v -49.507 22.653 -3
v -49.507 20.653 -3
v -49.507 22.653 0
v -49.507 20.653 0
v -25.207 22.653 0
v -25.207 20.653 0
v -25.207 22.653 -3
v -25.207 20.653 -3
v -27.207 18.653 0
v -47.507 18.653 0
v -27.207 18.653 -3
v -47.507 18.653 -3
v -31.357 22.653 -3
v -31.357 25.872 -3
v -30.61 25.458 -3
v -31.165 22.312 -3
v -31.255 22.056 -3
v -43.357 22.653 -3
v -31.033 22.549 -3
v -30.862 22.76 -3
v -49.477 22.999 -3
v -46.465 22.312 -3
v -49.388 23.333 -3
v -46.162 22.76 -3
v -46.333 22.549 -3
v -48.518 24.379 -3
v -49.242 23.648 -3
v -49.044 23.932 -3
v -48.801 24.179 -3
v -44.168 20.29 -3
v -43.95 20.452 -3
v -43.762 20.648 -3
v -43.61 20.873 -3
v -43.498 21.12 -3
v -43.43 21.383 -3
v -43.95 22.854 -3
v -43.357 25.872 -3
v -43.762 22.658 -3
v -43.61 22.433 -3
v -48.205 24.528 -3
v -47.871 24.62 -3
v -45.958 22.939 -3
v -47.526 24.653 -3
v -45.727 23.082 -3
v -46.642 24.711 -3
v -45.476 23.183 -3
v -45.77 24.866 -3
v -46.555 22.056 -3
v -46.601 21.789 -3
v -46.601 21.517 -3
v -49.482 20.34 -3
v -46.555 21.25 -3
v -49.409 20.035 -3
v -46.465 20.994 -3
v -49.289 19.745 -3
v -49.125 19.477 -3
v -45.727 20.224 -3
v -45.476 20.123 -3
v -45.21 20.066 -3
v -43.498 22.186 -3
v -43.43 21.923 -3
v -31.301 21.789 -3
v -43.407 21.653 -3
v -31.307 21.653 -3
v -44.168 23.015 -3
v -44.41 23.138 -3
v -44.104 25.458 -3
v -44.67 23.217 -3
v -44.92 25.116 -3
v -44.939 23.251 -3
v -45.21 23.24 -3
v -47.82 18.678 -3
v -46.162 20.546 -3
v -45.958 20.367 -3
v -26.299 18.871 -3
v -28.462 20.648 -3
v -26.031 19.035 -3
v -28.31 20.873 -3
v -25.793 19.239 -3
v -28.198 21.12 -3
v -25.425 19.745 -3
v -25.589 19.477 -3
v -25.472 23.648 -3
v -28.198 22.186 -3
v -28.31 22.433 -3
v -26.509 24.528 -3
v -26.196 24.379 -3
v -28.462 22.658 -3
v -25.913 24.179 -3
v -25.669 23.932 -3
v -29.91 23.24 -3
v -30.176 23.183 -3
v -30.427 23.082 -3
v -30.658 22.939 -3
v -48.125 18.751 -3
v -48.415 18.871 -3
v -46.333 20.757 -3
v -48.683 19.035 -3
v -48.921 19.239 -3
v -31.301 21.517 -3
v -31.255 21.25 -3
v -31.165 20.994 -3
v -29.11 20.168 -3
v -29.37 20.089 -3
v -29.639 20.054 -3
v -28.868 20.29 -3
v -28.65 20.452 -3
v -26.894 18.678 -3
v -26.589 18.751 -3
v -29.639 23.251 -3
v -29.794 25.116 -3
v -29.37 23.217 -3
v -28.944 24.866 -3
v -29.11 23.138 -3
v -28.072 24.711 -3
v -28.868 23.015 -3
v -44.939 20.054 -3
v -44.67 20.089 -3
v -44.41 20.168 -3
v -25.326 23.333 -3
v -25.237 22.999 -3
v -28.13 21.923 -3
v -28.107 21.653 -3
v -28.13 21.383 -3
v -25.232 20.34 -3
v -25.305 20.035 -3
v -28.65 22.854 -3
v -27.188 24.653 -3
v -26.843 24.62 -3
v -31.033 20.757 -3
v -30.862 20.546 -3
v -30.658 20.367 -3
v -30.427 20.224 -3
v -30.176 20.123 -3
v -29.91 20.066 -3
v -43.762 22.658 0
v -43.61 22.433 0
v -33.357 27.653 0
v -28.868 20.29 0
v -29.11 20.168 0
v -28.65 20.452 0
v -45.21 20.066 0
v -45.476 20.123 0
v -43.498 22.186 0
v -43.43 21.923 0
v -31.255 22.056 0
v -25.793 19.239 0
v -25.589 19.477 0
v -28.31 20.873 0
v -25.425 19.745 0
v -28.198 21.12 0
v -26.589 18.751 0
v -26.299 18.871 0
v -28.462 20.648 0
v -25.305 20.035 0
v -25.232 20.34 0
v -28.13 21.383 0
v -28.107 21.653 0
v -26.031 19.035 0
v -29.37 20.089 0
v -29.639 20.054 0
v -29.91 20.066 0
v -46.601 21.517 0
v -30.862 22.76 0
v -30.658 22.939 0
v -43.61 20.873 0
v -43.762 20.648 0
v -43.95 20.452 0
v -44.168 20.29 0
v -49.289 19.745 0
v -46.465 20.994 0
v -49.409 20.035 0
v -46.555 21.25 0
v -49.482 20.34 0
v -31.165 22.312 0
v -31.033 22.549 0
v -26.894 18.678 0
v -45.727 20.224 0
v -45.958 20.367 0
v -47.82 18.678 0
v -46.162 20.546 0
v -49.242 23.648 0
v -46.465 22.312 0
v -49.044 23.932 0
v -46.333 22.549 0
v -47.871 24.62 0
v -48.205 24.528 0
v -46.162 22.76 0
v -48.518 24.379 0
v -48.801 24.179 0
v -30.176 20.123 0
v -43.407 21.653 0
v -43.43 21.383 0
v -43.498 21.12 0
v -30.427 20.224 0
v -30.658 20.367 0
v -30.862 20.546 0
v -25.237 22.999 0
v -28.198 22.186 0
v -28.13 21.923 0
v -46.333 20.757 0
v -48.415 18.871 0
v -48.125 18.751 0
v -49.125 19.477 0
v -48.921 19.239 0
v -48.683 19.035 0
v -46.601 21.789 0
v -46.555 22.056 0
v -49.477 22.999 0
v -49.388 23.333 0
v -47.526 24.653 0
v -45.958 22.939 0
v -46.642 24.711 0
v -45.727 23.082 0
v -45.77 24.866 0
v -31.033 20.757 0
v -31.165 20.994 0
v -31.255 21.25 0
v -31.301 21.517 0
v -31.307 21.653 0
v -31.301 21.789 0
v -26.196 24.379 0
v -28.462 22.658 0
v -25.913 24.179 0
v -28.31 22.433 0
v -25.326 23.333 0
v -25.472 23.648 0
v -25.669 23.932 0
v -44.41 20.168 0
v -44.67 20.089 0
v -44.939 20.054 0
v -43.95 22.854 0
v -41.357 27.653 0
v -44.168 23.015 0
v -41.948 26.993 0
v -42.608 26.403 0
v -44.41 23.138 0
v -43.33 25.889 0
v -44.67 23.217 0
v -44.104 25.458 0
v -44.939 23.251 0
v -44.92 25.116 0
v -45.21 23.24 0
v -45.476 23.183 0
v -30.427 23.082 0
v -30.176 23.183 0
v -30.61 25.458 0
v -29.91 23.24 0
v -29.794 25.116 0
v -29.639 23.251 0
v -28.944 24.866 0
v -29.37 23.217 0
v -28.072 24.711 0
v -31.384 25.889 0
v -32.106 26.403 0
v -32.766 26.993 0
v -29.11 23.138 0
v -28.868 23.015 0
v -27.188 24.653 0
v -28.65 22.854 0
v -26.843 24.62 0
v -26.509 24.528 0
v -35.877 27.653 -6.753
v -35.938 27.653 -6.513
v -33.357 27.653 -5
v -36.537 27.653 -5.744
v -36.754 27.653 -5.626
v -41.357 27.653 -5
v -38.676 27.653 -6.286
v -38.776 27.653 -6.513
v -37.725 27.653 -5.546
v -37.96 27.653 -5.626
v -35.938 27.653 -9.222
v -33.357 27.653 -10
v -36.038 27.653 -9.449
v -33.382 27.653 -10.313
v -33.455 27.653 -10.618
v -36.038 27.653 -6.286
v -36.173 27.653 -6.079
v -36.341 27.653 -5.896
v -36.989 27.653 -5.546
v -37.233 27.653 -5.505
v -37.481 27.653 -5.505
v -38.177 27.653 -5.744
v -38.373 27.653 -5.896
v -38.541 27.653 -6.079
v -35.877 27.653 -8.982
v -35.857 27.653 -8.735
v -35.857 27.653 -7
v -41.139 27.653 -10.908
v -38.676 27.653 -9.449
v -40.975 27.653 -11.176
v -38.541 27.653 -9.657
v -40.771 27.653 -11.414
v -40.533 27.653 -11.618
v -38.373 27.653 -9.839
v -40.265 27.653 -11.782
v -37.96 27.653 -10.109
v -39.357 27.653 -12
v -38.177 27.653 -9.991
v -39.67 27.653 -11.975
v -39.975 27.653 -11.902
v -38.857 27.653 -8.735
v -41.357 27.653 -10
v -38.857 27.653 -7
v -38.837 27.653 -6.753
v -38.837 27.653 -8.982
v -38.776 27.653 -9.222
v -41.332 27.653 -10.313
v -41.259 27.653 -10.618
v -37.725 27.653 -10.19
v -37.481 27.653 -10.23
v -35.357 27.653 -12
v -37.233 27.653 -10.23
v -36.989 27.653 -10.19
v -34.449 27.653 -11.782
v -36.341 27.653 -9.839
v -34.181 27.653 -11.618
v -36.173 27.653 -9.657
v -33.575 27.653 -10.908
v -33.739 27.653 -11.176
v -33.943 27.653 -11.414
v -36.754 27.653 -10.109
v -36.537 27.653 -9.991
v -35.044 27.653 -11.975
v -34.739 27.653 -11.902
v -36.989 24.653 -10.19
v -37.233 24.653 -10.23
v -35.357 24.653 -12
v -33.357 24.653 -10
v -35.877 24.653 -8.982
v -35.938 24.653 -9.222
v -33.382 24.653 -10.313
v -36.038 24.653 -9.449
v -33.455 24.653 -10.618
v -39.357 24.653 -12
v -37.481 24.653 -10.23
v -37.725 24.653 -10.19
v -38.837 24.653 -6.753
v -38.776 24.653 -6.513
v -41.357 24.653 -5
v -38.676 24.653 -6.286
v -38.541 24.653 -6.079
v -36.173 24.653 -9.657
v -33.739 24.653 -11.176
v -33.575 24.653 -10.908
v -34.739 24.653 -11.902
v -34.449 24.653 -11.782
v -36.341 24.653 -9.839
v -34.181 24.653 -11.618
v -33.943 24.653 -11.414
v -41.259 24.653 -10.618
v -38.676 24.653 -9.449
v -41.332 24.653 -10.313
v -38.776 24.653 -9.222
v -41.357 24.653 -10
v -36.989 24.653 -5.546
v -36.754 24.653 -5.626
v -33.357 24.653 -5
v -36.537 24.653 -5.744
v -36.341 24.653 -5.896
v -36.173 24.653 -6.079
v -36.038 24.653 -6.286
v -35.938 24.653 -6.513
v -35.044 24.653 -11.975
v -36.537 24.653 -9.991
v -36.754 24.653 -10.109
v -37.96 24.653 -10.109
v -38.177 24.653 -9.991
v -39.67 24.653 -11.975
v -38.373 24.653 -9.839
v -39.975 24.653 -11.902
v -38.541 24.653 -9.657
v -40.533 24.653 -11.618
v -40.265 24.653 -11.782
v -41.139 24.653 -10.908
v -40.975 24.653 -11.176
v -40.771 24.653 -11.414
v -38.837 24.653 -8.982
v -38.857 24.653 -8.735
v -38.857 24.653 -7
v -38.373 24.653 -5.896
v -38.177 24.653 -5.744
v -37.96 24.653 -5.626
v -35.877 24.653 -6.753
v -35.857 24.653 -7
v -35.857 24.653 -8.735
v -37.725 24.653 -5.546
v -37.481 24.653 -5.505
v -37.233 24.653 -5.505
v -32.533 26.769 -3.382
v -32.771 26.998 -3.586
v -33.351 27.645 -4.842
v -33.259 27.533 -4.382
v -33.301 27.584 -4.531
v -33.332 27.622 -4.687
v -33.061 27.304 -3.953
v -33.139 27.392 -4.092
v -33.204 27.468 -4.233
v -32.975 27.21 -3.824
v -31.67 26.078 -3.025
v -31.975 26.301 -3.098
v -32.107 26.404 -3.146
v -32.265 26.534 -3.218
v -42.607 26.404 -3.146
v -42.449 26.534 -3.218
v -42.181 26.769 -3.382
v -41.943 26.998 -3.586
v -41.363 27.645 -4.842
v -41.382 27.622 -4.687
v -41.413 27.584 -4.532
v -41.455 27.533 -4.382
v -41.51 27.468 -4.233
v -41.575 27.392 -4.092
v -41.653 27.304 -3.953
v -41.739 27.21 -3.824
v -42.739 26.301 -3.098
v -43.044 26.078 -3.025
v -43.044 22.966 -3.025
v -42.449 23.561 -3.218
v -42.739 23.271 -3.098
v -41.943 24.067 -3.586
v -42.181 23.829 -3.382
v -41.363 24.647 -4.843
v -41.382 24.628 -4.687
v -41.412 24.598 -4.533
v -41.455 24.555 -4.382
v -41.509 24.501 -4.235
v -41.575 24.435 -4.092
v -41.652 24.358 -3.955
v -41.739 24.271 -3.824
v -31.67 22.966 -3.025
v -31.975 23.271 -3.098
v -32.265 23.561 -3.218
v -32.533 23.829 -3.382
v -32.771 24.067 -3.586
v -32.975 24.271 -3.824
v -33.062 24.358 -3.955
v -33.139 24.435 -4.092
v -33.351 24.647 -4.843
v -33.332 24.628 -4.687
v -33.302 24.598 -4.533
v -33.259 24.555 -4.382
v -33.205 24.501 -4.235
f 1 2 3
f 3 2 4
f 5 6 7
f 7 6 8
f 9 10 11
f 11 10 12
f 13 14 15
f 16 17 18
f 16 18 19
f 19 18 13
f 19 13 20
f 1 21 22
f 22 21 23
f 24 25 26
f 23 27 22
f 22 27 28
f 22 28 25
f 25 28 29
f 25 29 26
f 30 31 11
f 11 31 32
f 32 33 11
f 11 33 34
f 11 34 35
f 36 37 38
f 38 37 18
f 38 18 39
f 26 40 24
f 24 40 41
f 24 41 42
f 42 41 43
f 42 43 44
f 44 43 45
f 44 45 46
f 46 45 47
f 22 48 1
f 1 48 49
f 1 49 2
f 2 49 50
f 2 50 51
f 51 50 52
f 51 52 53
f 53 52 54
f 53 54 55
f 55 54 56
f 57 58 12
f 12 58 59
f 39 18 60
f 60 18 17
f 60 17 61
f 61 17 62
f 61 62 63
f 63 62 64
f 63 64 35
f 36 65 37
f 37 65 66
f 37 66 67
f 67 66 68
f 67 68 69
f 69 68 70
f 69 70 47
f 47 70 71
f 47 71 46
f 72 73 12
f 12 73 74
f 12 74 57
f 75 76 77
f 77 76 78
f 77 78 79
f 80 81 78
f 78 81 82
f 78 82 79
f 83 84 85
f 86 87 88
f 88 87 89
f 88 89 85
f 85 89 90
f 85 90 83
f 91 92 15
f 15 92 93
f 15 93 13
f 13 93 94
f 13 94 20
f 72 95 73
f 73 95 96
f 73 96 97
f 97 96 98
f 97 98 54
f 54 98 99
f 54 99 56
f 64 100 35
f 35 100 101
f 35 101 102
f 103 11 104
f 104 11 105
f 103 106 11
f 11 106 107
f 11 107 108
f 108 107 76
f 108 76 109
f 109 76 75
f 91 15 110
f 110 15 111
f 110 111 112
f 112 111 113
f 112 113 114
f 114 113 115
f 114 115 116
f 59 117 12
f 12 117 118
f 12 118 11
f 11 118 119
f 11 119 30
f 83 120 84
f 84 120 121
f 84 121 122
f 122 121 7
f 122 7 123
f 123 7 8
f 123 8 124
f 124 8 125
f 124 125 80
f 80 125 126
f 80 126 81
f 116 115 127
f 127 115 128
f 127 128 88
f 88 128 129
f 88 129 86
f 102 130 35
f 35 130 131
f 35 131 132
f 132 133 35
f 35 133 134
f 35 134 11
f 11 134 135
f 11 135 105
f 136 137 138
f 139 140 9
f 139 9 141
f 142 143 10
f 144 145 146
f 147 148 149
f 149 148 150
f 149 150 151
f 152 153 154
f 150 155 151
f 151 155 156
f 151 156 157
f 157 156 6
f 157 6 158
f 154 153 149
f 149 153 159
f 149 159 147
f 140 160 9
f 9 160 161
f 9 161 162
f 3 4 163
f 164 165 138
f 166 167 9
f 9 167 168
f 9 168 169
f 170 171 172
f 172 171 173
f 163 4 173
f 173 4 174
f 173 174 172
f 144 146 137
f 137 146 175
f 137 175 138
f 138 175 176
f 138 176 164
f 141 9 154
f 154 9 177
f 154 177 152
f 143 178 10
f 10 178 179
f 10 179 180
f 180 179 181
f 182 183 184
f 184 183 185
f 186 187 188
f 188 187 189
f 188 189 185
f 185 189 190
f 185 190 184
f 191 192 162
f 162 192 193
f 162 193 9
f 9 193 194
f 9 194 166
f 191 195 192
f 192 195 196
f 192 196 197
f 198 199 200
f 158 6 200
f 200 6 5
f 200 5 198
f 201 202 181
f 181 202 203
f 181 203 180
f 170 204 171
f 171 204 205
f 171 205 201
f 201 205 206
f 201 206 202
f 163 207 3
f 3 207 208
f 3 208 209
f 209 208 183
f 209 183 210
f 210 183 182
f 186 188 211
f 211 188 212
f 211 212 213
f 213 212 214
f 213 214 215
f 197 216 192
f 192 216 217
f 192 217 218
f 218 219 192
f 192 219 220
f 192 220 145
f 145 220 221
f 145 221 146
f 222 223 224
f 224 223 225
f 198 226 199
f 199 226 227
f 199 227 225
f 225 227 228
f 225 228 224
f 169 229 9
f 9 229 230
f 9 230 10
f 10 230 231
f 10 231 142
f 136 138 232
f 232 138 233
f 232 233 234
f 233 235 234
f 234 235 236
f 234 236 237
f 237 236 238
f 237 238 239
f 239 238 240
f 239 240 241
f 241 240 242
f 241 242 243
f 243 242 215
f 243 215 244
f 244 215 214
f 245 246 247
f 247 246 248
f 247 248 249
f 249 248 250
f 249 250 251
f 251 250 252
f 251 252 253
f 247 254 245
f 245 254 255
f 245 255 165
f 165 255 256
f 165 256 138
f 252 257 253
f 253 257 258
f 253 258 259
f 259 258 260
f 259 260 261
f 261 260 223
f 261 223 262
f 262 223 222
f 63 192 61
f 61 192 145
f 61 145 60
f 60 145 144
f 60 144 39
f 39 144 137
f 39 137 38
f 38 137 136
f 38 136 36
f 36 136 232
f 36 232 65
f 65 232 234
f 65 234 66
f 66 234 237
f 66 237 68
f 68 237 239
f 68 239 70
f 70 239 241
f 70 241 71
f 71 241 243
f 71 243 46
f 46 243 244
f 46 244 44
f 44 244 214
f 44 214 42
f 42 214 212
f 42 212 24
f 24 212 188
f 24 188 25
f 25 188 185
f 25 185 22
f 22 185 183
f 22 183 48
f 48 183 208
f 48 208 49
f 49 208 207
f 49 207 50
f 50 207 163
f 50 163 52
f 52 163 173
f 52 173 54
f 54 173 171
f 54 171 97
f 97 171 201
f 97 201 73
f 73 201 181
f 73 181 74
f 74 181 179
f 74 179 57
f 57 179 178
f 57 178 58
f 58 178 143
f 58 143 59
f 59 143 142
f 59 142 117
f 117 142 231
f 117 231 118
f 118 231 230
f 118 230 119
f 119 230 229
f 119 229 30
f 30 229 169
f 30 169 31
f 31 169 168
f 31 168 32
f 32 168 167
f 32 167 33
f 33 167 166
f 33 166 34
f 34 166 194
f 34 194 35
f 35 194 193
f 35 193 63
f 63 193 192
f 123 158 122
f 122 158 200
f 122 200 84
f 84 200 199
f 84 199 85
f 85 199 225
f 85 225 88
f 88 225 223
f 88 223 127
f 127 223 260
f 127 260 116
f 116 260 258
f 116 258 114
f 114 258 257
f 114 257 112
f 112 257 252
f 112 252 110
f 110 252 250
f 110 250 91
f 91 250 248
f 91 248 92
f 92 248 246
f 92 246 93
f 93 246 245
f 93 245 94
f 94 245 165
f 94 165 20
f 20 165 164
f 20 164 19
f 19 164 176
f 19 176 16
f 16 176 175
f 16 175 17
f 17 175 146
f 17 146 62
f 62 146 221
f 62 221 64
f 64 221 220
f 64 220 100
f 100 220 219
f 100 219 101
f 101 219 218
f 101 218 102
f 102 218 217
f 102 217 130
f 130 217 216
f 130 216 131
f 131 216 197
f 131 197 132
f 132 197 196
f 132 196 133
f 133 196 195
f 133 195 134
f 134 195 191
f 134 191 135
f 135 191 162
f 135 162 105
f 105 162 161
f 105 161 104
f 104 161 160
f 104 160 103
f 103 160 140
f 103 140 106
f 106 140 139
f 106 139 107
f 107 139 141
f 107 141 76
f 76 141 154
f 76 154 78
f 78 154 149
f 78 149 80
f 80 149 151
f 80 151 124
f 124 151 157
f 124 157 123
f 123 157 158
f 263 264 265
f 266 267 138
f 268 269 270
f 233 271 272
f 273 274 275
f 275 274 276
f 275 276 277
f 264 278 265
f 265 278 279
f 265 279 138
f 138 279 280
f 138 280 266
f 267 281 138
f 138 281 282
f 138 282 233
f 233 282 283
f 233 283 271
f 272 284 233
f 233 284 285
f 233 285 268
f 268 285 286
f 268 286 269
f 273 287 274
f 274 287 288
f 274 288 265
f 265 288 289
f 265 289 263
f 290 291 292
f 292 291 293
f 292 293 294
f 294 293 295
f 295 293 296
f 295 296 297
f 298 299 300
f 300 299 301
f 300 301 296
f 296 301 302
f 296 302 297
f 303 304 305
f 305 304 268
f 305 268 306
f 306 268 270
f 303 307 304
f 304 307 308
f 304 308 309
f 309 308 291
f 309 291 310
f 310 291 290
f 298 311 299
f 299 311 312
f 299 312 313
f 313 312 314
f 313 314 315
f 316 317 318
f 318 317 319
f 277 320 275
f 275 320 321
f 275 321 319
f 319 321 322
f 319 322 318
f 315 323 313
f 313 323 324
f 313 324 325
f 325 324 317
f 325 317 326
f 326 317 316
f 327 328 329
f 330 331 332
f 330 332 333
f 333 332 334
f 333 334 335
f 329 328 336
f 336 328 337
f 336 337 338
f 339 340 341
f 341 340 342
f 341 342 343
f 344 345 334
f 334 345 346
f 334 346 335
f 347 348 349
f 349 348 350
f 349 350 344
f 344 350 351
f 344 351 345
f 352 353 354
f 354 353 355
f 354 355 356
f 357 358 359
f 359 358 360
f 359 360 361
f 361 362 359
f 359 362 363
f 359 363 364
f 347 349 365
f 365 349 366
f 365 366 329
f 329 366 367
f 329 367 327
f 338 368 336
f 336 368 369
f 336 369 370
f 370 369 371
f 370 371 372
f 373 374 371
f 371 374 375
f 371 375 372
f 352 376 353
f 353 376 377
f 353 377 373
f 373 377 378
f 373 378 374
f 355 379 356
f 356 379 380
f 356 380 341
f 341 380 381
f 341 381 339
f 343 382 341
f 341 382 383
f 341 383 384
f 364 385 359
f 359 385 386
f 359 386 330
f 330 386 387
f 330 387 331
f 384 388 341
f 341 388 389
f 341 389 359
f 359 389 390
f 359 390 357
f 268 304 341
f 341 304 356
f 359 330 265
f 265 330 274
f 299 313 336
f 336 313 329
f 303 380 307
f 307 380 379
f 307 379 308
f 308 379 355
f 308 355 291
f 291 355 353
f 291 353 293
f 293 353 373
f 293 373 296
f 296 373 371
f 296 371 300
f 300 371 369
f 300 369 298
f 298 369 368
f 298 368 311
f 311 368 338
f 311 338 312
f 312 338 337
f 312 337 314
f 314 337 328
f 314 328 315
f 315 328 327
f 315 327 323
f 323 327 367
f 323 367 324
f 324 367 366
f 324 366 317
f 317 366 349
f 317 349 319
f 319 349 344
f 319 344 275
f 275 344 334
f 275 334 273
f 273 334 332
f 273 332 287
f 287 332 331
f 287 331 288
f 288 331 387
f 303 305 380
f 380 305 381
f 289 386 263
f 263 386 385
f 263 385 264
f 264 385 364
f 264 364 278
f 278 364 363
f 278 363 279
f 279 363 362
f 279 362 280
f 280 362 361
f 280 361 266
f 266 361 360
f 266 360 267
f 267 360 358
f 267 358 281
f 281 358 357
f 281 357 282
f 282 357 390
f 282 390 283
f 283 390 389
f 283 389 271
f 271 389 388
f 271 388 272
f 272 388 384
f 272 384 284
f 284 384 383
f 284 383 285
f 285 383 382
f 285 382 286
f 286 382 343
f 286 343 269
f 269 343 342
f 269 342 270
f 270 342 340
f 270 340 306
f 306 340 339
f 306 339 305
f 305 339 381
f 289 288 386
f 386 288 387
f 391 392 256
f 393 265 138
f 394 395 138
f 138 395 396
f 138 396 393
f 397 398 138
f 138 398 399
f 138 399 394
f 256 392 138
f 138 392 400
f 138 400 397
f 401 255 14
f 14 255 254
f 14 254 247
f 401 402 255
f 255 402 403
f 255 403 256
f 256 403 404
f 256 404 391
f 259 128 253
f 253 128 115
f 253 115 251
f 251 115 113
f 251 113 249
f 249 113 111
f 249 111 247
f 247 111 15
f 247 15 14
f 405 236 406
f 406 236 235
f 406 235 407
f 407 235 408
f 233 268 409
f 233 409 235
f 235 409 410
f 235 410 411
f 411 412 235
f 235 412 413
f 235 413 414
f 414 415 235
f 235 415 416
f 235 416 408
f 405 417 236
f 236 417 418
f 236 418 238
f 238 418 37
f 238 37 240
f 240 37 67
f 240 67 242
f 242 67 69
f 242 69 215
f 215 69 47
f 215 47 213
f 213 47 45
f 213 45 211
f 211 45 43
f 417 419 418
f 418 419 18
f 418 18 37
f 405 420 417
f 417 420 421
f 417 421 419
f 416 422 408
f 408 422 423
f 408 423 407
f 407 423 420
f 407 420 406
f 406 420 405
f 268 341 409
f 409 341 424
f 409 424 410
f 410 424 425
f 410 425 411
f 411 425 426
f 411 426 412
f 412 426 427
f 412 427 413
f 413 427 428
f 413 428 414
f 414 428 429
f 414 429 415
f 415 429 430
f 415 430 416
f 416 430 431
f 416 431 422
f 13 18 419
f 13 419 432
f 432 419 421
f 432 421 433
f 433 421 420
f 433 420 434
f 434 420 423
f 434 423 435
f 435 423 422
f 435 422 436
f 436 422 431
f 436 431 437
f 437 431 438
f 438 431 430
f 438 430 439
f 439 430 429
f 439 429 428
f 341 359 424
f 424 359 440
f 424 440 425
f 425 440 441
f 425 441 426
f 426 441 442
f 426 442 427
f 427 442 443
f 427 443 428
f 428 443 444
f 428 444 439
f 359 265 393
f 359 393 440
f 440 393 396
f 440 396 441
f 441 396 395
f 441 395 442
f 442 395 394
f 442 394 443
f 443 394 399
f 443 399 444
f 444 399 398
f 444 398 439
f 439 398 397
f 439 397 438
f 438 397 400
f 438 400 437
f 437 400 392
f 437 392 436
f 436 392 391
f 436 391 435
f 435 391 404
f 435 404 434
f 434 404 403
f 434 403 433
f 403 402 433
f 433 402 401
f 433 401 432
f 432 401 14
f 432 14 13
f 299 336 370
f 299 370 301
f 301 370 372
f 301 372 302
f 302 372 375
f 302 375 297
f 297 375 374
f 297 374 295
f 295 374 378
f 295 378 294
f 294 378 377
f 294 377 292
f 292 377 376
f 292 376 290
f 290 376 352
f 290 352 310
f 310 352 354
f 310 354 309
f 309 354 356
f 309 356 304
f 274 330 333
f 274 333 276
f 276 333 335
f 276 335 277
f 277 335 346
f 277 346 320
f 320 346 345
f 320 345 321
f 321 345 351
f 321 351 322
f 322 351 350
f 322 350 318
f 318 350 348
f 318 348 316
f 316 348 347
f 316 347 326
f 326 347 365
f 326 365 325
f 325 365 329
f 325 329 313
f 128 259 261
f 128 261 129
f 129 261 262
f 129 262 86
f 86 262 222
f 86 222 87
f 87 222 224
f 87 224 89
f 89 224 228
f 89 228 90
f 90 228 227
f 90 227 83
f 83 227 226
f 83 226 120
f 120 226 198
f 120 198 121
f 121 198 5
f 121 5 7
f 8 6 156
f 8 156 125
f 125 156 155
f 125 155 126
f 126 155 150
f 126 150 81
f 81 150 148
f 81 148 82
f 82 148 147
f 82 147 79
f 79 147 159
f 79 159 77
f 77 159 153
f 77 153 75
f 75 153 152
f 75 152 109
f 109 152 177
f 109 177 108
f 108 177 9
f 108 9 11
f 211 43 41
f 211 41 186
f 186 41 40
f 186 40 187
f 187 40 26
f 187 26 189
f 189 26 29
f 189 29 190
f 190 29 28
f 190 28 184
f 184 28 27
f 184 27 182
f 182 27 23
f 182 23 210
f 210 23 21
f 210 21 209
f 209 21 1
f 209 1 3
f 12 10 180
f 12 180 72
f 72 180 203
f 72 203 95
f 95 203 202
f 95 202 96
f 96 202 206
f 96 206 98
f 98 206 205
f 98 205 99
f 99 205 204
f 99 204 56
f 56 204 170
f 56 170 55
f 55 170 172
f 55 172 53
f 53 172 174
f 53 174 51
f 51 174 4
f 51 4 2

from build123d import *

# Parameters (mm, degrees)
ESBO_O1_W                = 24.3
ESBO_O1_H                = 6
ESBO_O1_R                = 1.6
FLANGE_BASE1_DEPTH       = 3
ESBO_O6_W                = 8
ESBO_O6_H                = 12
RESSALTO_EXTRUS_O1_DEPTH = 3
FILETE1_R                = 8
FILETE2_R                = 2


# Sheet-metal steps are written as plain solids
with BuildPart() as part:
    # Esboço1 → Flange-base1 (new body)
    with BuildSketch(Plane.XY):
        with Locations((-37.35698959, 21.652941176)):
            Rectangle(ESBO_O1_W, ESBO_O1_H)
        with Locations((-45.00698959, 21.652941176)):
            Circle(ESBO_O1_R, mode=Mode.SUBTRACT)
        with Locations(Location((-29.70698959, 21.652941176, 0), (0, 0, 180))):
            Circle(ESBO_O1_R, mode=Mode.SUBTRACT)
    extrude(amount=-FLANGE_BASE1_DEPTH)

    # Esboço6 → Ressalto-extrusão1 (add)
    with BuildSketch(Plane(origin=(0, 24.652941176, 0), x_dir=(1, 0, 0), z_dir=(0, 1, 0))):
        with Locations((-37.35698959, 6)):
            Rectangle(ESBO_O6_W, ESBO_O6_H)
        with BuildLine():
            Line((-35.85698959, 8.735419394), (-35.85698959, 7))
            ThreePointArc((-35.85698959, 7), (-37.35698959, 5.5), (-38.85698959, 7))
            Line((-38.85698959, 7), (-38.85698959, 8.735419394))
            ThreePointArc((-38.85698959, 8.735419394), (-37.35698959, 10.235419394), (-35.85698959, 8.735419394))
        make_face(mode=Mode.SUBTRACT)
    extrude(amount=RESSALTO_EXTRUS_O1_DEPTH)

    # Filete1
    # the kernel refuses this fillet: 8 mm, written as the material it adds along each edge
    with BuildSketch(Plane(origin=(-33.35698959, 24.652941176, 0), x_dir=(1, 0, 0), z_dir=(0, 0, -1)), Plane(origin=(-41.35698959, 24.652941176, -3), x_dir=(-1, 0, 0), z_dir=(0, 0, 1))) as filete1_piece_1:
        with BuildLine():
            CenterArc((6.244997998, -8), FILETE1_R, 90, 51.317812547)
            Line((0, -3), (0, 0))
            Line((0, 0), (6.244997998, 0))
        make_face()
    extrude(amount=3)

    # Filete2
    filete2_edges = [part.edges().sort_by_distance(p)[0] for p in [
        (-33.35698959, 26.152941176, -3),
        (-41.35698959, 26.152941176, -3),
        (-41.35698959, 26.152941176, -12),
        (-33.35698959, 26.152941176, -12),
        (-25.20698959, 24.652941176, -1.5),
        (-25.20698959, 18.652941176, -1.5),
        (-49.50698959, 24.652941176, -1.5),
        (-49.50698959, 18.652941176, -1.5),
        (-37.35698959, 24.652941176, -3),
    ]]
    fillet(filete2_edges, radius=FILETE2_R)


solid = part.part
